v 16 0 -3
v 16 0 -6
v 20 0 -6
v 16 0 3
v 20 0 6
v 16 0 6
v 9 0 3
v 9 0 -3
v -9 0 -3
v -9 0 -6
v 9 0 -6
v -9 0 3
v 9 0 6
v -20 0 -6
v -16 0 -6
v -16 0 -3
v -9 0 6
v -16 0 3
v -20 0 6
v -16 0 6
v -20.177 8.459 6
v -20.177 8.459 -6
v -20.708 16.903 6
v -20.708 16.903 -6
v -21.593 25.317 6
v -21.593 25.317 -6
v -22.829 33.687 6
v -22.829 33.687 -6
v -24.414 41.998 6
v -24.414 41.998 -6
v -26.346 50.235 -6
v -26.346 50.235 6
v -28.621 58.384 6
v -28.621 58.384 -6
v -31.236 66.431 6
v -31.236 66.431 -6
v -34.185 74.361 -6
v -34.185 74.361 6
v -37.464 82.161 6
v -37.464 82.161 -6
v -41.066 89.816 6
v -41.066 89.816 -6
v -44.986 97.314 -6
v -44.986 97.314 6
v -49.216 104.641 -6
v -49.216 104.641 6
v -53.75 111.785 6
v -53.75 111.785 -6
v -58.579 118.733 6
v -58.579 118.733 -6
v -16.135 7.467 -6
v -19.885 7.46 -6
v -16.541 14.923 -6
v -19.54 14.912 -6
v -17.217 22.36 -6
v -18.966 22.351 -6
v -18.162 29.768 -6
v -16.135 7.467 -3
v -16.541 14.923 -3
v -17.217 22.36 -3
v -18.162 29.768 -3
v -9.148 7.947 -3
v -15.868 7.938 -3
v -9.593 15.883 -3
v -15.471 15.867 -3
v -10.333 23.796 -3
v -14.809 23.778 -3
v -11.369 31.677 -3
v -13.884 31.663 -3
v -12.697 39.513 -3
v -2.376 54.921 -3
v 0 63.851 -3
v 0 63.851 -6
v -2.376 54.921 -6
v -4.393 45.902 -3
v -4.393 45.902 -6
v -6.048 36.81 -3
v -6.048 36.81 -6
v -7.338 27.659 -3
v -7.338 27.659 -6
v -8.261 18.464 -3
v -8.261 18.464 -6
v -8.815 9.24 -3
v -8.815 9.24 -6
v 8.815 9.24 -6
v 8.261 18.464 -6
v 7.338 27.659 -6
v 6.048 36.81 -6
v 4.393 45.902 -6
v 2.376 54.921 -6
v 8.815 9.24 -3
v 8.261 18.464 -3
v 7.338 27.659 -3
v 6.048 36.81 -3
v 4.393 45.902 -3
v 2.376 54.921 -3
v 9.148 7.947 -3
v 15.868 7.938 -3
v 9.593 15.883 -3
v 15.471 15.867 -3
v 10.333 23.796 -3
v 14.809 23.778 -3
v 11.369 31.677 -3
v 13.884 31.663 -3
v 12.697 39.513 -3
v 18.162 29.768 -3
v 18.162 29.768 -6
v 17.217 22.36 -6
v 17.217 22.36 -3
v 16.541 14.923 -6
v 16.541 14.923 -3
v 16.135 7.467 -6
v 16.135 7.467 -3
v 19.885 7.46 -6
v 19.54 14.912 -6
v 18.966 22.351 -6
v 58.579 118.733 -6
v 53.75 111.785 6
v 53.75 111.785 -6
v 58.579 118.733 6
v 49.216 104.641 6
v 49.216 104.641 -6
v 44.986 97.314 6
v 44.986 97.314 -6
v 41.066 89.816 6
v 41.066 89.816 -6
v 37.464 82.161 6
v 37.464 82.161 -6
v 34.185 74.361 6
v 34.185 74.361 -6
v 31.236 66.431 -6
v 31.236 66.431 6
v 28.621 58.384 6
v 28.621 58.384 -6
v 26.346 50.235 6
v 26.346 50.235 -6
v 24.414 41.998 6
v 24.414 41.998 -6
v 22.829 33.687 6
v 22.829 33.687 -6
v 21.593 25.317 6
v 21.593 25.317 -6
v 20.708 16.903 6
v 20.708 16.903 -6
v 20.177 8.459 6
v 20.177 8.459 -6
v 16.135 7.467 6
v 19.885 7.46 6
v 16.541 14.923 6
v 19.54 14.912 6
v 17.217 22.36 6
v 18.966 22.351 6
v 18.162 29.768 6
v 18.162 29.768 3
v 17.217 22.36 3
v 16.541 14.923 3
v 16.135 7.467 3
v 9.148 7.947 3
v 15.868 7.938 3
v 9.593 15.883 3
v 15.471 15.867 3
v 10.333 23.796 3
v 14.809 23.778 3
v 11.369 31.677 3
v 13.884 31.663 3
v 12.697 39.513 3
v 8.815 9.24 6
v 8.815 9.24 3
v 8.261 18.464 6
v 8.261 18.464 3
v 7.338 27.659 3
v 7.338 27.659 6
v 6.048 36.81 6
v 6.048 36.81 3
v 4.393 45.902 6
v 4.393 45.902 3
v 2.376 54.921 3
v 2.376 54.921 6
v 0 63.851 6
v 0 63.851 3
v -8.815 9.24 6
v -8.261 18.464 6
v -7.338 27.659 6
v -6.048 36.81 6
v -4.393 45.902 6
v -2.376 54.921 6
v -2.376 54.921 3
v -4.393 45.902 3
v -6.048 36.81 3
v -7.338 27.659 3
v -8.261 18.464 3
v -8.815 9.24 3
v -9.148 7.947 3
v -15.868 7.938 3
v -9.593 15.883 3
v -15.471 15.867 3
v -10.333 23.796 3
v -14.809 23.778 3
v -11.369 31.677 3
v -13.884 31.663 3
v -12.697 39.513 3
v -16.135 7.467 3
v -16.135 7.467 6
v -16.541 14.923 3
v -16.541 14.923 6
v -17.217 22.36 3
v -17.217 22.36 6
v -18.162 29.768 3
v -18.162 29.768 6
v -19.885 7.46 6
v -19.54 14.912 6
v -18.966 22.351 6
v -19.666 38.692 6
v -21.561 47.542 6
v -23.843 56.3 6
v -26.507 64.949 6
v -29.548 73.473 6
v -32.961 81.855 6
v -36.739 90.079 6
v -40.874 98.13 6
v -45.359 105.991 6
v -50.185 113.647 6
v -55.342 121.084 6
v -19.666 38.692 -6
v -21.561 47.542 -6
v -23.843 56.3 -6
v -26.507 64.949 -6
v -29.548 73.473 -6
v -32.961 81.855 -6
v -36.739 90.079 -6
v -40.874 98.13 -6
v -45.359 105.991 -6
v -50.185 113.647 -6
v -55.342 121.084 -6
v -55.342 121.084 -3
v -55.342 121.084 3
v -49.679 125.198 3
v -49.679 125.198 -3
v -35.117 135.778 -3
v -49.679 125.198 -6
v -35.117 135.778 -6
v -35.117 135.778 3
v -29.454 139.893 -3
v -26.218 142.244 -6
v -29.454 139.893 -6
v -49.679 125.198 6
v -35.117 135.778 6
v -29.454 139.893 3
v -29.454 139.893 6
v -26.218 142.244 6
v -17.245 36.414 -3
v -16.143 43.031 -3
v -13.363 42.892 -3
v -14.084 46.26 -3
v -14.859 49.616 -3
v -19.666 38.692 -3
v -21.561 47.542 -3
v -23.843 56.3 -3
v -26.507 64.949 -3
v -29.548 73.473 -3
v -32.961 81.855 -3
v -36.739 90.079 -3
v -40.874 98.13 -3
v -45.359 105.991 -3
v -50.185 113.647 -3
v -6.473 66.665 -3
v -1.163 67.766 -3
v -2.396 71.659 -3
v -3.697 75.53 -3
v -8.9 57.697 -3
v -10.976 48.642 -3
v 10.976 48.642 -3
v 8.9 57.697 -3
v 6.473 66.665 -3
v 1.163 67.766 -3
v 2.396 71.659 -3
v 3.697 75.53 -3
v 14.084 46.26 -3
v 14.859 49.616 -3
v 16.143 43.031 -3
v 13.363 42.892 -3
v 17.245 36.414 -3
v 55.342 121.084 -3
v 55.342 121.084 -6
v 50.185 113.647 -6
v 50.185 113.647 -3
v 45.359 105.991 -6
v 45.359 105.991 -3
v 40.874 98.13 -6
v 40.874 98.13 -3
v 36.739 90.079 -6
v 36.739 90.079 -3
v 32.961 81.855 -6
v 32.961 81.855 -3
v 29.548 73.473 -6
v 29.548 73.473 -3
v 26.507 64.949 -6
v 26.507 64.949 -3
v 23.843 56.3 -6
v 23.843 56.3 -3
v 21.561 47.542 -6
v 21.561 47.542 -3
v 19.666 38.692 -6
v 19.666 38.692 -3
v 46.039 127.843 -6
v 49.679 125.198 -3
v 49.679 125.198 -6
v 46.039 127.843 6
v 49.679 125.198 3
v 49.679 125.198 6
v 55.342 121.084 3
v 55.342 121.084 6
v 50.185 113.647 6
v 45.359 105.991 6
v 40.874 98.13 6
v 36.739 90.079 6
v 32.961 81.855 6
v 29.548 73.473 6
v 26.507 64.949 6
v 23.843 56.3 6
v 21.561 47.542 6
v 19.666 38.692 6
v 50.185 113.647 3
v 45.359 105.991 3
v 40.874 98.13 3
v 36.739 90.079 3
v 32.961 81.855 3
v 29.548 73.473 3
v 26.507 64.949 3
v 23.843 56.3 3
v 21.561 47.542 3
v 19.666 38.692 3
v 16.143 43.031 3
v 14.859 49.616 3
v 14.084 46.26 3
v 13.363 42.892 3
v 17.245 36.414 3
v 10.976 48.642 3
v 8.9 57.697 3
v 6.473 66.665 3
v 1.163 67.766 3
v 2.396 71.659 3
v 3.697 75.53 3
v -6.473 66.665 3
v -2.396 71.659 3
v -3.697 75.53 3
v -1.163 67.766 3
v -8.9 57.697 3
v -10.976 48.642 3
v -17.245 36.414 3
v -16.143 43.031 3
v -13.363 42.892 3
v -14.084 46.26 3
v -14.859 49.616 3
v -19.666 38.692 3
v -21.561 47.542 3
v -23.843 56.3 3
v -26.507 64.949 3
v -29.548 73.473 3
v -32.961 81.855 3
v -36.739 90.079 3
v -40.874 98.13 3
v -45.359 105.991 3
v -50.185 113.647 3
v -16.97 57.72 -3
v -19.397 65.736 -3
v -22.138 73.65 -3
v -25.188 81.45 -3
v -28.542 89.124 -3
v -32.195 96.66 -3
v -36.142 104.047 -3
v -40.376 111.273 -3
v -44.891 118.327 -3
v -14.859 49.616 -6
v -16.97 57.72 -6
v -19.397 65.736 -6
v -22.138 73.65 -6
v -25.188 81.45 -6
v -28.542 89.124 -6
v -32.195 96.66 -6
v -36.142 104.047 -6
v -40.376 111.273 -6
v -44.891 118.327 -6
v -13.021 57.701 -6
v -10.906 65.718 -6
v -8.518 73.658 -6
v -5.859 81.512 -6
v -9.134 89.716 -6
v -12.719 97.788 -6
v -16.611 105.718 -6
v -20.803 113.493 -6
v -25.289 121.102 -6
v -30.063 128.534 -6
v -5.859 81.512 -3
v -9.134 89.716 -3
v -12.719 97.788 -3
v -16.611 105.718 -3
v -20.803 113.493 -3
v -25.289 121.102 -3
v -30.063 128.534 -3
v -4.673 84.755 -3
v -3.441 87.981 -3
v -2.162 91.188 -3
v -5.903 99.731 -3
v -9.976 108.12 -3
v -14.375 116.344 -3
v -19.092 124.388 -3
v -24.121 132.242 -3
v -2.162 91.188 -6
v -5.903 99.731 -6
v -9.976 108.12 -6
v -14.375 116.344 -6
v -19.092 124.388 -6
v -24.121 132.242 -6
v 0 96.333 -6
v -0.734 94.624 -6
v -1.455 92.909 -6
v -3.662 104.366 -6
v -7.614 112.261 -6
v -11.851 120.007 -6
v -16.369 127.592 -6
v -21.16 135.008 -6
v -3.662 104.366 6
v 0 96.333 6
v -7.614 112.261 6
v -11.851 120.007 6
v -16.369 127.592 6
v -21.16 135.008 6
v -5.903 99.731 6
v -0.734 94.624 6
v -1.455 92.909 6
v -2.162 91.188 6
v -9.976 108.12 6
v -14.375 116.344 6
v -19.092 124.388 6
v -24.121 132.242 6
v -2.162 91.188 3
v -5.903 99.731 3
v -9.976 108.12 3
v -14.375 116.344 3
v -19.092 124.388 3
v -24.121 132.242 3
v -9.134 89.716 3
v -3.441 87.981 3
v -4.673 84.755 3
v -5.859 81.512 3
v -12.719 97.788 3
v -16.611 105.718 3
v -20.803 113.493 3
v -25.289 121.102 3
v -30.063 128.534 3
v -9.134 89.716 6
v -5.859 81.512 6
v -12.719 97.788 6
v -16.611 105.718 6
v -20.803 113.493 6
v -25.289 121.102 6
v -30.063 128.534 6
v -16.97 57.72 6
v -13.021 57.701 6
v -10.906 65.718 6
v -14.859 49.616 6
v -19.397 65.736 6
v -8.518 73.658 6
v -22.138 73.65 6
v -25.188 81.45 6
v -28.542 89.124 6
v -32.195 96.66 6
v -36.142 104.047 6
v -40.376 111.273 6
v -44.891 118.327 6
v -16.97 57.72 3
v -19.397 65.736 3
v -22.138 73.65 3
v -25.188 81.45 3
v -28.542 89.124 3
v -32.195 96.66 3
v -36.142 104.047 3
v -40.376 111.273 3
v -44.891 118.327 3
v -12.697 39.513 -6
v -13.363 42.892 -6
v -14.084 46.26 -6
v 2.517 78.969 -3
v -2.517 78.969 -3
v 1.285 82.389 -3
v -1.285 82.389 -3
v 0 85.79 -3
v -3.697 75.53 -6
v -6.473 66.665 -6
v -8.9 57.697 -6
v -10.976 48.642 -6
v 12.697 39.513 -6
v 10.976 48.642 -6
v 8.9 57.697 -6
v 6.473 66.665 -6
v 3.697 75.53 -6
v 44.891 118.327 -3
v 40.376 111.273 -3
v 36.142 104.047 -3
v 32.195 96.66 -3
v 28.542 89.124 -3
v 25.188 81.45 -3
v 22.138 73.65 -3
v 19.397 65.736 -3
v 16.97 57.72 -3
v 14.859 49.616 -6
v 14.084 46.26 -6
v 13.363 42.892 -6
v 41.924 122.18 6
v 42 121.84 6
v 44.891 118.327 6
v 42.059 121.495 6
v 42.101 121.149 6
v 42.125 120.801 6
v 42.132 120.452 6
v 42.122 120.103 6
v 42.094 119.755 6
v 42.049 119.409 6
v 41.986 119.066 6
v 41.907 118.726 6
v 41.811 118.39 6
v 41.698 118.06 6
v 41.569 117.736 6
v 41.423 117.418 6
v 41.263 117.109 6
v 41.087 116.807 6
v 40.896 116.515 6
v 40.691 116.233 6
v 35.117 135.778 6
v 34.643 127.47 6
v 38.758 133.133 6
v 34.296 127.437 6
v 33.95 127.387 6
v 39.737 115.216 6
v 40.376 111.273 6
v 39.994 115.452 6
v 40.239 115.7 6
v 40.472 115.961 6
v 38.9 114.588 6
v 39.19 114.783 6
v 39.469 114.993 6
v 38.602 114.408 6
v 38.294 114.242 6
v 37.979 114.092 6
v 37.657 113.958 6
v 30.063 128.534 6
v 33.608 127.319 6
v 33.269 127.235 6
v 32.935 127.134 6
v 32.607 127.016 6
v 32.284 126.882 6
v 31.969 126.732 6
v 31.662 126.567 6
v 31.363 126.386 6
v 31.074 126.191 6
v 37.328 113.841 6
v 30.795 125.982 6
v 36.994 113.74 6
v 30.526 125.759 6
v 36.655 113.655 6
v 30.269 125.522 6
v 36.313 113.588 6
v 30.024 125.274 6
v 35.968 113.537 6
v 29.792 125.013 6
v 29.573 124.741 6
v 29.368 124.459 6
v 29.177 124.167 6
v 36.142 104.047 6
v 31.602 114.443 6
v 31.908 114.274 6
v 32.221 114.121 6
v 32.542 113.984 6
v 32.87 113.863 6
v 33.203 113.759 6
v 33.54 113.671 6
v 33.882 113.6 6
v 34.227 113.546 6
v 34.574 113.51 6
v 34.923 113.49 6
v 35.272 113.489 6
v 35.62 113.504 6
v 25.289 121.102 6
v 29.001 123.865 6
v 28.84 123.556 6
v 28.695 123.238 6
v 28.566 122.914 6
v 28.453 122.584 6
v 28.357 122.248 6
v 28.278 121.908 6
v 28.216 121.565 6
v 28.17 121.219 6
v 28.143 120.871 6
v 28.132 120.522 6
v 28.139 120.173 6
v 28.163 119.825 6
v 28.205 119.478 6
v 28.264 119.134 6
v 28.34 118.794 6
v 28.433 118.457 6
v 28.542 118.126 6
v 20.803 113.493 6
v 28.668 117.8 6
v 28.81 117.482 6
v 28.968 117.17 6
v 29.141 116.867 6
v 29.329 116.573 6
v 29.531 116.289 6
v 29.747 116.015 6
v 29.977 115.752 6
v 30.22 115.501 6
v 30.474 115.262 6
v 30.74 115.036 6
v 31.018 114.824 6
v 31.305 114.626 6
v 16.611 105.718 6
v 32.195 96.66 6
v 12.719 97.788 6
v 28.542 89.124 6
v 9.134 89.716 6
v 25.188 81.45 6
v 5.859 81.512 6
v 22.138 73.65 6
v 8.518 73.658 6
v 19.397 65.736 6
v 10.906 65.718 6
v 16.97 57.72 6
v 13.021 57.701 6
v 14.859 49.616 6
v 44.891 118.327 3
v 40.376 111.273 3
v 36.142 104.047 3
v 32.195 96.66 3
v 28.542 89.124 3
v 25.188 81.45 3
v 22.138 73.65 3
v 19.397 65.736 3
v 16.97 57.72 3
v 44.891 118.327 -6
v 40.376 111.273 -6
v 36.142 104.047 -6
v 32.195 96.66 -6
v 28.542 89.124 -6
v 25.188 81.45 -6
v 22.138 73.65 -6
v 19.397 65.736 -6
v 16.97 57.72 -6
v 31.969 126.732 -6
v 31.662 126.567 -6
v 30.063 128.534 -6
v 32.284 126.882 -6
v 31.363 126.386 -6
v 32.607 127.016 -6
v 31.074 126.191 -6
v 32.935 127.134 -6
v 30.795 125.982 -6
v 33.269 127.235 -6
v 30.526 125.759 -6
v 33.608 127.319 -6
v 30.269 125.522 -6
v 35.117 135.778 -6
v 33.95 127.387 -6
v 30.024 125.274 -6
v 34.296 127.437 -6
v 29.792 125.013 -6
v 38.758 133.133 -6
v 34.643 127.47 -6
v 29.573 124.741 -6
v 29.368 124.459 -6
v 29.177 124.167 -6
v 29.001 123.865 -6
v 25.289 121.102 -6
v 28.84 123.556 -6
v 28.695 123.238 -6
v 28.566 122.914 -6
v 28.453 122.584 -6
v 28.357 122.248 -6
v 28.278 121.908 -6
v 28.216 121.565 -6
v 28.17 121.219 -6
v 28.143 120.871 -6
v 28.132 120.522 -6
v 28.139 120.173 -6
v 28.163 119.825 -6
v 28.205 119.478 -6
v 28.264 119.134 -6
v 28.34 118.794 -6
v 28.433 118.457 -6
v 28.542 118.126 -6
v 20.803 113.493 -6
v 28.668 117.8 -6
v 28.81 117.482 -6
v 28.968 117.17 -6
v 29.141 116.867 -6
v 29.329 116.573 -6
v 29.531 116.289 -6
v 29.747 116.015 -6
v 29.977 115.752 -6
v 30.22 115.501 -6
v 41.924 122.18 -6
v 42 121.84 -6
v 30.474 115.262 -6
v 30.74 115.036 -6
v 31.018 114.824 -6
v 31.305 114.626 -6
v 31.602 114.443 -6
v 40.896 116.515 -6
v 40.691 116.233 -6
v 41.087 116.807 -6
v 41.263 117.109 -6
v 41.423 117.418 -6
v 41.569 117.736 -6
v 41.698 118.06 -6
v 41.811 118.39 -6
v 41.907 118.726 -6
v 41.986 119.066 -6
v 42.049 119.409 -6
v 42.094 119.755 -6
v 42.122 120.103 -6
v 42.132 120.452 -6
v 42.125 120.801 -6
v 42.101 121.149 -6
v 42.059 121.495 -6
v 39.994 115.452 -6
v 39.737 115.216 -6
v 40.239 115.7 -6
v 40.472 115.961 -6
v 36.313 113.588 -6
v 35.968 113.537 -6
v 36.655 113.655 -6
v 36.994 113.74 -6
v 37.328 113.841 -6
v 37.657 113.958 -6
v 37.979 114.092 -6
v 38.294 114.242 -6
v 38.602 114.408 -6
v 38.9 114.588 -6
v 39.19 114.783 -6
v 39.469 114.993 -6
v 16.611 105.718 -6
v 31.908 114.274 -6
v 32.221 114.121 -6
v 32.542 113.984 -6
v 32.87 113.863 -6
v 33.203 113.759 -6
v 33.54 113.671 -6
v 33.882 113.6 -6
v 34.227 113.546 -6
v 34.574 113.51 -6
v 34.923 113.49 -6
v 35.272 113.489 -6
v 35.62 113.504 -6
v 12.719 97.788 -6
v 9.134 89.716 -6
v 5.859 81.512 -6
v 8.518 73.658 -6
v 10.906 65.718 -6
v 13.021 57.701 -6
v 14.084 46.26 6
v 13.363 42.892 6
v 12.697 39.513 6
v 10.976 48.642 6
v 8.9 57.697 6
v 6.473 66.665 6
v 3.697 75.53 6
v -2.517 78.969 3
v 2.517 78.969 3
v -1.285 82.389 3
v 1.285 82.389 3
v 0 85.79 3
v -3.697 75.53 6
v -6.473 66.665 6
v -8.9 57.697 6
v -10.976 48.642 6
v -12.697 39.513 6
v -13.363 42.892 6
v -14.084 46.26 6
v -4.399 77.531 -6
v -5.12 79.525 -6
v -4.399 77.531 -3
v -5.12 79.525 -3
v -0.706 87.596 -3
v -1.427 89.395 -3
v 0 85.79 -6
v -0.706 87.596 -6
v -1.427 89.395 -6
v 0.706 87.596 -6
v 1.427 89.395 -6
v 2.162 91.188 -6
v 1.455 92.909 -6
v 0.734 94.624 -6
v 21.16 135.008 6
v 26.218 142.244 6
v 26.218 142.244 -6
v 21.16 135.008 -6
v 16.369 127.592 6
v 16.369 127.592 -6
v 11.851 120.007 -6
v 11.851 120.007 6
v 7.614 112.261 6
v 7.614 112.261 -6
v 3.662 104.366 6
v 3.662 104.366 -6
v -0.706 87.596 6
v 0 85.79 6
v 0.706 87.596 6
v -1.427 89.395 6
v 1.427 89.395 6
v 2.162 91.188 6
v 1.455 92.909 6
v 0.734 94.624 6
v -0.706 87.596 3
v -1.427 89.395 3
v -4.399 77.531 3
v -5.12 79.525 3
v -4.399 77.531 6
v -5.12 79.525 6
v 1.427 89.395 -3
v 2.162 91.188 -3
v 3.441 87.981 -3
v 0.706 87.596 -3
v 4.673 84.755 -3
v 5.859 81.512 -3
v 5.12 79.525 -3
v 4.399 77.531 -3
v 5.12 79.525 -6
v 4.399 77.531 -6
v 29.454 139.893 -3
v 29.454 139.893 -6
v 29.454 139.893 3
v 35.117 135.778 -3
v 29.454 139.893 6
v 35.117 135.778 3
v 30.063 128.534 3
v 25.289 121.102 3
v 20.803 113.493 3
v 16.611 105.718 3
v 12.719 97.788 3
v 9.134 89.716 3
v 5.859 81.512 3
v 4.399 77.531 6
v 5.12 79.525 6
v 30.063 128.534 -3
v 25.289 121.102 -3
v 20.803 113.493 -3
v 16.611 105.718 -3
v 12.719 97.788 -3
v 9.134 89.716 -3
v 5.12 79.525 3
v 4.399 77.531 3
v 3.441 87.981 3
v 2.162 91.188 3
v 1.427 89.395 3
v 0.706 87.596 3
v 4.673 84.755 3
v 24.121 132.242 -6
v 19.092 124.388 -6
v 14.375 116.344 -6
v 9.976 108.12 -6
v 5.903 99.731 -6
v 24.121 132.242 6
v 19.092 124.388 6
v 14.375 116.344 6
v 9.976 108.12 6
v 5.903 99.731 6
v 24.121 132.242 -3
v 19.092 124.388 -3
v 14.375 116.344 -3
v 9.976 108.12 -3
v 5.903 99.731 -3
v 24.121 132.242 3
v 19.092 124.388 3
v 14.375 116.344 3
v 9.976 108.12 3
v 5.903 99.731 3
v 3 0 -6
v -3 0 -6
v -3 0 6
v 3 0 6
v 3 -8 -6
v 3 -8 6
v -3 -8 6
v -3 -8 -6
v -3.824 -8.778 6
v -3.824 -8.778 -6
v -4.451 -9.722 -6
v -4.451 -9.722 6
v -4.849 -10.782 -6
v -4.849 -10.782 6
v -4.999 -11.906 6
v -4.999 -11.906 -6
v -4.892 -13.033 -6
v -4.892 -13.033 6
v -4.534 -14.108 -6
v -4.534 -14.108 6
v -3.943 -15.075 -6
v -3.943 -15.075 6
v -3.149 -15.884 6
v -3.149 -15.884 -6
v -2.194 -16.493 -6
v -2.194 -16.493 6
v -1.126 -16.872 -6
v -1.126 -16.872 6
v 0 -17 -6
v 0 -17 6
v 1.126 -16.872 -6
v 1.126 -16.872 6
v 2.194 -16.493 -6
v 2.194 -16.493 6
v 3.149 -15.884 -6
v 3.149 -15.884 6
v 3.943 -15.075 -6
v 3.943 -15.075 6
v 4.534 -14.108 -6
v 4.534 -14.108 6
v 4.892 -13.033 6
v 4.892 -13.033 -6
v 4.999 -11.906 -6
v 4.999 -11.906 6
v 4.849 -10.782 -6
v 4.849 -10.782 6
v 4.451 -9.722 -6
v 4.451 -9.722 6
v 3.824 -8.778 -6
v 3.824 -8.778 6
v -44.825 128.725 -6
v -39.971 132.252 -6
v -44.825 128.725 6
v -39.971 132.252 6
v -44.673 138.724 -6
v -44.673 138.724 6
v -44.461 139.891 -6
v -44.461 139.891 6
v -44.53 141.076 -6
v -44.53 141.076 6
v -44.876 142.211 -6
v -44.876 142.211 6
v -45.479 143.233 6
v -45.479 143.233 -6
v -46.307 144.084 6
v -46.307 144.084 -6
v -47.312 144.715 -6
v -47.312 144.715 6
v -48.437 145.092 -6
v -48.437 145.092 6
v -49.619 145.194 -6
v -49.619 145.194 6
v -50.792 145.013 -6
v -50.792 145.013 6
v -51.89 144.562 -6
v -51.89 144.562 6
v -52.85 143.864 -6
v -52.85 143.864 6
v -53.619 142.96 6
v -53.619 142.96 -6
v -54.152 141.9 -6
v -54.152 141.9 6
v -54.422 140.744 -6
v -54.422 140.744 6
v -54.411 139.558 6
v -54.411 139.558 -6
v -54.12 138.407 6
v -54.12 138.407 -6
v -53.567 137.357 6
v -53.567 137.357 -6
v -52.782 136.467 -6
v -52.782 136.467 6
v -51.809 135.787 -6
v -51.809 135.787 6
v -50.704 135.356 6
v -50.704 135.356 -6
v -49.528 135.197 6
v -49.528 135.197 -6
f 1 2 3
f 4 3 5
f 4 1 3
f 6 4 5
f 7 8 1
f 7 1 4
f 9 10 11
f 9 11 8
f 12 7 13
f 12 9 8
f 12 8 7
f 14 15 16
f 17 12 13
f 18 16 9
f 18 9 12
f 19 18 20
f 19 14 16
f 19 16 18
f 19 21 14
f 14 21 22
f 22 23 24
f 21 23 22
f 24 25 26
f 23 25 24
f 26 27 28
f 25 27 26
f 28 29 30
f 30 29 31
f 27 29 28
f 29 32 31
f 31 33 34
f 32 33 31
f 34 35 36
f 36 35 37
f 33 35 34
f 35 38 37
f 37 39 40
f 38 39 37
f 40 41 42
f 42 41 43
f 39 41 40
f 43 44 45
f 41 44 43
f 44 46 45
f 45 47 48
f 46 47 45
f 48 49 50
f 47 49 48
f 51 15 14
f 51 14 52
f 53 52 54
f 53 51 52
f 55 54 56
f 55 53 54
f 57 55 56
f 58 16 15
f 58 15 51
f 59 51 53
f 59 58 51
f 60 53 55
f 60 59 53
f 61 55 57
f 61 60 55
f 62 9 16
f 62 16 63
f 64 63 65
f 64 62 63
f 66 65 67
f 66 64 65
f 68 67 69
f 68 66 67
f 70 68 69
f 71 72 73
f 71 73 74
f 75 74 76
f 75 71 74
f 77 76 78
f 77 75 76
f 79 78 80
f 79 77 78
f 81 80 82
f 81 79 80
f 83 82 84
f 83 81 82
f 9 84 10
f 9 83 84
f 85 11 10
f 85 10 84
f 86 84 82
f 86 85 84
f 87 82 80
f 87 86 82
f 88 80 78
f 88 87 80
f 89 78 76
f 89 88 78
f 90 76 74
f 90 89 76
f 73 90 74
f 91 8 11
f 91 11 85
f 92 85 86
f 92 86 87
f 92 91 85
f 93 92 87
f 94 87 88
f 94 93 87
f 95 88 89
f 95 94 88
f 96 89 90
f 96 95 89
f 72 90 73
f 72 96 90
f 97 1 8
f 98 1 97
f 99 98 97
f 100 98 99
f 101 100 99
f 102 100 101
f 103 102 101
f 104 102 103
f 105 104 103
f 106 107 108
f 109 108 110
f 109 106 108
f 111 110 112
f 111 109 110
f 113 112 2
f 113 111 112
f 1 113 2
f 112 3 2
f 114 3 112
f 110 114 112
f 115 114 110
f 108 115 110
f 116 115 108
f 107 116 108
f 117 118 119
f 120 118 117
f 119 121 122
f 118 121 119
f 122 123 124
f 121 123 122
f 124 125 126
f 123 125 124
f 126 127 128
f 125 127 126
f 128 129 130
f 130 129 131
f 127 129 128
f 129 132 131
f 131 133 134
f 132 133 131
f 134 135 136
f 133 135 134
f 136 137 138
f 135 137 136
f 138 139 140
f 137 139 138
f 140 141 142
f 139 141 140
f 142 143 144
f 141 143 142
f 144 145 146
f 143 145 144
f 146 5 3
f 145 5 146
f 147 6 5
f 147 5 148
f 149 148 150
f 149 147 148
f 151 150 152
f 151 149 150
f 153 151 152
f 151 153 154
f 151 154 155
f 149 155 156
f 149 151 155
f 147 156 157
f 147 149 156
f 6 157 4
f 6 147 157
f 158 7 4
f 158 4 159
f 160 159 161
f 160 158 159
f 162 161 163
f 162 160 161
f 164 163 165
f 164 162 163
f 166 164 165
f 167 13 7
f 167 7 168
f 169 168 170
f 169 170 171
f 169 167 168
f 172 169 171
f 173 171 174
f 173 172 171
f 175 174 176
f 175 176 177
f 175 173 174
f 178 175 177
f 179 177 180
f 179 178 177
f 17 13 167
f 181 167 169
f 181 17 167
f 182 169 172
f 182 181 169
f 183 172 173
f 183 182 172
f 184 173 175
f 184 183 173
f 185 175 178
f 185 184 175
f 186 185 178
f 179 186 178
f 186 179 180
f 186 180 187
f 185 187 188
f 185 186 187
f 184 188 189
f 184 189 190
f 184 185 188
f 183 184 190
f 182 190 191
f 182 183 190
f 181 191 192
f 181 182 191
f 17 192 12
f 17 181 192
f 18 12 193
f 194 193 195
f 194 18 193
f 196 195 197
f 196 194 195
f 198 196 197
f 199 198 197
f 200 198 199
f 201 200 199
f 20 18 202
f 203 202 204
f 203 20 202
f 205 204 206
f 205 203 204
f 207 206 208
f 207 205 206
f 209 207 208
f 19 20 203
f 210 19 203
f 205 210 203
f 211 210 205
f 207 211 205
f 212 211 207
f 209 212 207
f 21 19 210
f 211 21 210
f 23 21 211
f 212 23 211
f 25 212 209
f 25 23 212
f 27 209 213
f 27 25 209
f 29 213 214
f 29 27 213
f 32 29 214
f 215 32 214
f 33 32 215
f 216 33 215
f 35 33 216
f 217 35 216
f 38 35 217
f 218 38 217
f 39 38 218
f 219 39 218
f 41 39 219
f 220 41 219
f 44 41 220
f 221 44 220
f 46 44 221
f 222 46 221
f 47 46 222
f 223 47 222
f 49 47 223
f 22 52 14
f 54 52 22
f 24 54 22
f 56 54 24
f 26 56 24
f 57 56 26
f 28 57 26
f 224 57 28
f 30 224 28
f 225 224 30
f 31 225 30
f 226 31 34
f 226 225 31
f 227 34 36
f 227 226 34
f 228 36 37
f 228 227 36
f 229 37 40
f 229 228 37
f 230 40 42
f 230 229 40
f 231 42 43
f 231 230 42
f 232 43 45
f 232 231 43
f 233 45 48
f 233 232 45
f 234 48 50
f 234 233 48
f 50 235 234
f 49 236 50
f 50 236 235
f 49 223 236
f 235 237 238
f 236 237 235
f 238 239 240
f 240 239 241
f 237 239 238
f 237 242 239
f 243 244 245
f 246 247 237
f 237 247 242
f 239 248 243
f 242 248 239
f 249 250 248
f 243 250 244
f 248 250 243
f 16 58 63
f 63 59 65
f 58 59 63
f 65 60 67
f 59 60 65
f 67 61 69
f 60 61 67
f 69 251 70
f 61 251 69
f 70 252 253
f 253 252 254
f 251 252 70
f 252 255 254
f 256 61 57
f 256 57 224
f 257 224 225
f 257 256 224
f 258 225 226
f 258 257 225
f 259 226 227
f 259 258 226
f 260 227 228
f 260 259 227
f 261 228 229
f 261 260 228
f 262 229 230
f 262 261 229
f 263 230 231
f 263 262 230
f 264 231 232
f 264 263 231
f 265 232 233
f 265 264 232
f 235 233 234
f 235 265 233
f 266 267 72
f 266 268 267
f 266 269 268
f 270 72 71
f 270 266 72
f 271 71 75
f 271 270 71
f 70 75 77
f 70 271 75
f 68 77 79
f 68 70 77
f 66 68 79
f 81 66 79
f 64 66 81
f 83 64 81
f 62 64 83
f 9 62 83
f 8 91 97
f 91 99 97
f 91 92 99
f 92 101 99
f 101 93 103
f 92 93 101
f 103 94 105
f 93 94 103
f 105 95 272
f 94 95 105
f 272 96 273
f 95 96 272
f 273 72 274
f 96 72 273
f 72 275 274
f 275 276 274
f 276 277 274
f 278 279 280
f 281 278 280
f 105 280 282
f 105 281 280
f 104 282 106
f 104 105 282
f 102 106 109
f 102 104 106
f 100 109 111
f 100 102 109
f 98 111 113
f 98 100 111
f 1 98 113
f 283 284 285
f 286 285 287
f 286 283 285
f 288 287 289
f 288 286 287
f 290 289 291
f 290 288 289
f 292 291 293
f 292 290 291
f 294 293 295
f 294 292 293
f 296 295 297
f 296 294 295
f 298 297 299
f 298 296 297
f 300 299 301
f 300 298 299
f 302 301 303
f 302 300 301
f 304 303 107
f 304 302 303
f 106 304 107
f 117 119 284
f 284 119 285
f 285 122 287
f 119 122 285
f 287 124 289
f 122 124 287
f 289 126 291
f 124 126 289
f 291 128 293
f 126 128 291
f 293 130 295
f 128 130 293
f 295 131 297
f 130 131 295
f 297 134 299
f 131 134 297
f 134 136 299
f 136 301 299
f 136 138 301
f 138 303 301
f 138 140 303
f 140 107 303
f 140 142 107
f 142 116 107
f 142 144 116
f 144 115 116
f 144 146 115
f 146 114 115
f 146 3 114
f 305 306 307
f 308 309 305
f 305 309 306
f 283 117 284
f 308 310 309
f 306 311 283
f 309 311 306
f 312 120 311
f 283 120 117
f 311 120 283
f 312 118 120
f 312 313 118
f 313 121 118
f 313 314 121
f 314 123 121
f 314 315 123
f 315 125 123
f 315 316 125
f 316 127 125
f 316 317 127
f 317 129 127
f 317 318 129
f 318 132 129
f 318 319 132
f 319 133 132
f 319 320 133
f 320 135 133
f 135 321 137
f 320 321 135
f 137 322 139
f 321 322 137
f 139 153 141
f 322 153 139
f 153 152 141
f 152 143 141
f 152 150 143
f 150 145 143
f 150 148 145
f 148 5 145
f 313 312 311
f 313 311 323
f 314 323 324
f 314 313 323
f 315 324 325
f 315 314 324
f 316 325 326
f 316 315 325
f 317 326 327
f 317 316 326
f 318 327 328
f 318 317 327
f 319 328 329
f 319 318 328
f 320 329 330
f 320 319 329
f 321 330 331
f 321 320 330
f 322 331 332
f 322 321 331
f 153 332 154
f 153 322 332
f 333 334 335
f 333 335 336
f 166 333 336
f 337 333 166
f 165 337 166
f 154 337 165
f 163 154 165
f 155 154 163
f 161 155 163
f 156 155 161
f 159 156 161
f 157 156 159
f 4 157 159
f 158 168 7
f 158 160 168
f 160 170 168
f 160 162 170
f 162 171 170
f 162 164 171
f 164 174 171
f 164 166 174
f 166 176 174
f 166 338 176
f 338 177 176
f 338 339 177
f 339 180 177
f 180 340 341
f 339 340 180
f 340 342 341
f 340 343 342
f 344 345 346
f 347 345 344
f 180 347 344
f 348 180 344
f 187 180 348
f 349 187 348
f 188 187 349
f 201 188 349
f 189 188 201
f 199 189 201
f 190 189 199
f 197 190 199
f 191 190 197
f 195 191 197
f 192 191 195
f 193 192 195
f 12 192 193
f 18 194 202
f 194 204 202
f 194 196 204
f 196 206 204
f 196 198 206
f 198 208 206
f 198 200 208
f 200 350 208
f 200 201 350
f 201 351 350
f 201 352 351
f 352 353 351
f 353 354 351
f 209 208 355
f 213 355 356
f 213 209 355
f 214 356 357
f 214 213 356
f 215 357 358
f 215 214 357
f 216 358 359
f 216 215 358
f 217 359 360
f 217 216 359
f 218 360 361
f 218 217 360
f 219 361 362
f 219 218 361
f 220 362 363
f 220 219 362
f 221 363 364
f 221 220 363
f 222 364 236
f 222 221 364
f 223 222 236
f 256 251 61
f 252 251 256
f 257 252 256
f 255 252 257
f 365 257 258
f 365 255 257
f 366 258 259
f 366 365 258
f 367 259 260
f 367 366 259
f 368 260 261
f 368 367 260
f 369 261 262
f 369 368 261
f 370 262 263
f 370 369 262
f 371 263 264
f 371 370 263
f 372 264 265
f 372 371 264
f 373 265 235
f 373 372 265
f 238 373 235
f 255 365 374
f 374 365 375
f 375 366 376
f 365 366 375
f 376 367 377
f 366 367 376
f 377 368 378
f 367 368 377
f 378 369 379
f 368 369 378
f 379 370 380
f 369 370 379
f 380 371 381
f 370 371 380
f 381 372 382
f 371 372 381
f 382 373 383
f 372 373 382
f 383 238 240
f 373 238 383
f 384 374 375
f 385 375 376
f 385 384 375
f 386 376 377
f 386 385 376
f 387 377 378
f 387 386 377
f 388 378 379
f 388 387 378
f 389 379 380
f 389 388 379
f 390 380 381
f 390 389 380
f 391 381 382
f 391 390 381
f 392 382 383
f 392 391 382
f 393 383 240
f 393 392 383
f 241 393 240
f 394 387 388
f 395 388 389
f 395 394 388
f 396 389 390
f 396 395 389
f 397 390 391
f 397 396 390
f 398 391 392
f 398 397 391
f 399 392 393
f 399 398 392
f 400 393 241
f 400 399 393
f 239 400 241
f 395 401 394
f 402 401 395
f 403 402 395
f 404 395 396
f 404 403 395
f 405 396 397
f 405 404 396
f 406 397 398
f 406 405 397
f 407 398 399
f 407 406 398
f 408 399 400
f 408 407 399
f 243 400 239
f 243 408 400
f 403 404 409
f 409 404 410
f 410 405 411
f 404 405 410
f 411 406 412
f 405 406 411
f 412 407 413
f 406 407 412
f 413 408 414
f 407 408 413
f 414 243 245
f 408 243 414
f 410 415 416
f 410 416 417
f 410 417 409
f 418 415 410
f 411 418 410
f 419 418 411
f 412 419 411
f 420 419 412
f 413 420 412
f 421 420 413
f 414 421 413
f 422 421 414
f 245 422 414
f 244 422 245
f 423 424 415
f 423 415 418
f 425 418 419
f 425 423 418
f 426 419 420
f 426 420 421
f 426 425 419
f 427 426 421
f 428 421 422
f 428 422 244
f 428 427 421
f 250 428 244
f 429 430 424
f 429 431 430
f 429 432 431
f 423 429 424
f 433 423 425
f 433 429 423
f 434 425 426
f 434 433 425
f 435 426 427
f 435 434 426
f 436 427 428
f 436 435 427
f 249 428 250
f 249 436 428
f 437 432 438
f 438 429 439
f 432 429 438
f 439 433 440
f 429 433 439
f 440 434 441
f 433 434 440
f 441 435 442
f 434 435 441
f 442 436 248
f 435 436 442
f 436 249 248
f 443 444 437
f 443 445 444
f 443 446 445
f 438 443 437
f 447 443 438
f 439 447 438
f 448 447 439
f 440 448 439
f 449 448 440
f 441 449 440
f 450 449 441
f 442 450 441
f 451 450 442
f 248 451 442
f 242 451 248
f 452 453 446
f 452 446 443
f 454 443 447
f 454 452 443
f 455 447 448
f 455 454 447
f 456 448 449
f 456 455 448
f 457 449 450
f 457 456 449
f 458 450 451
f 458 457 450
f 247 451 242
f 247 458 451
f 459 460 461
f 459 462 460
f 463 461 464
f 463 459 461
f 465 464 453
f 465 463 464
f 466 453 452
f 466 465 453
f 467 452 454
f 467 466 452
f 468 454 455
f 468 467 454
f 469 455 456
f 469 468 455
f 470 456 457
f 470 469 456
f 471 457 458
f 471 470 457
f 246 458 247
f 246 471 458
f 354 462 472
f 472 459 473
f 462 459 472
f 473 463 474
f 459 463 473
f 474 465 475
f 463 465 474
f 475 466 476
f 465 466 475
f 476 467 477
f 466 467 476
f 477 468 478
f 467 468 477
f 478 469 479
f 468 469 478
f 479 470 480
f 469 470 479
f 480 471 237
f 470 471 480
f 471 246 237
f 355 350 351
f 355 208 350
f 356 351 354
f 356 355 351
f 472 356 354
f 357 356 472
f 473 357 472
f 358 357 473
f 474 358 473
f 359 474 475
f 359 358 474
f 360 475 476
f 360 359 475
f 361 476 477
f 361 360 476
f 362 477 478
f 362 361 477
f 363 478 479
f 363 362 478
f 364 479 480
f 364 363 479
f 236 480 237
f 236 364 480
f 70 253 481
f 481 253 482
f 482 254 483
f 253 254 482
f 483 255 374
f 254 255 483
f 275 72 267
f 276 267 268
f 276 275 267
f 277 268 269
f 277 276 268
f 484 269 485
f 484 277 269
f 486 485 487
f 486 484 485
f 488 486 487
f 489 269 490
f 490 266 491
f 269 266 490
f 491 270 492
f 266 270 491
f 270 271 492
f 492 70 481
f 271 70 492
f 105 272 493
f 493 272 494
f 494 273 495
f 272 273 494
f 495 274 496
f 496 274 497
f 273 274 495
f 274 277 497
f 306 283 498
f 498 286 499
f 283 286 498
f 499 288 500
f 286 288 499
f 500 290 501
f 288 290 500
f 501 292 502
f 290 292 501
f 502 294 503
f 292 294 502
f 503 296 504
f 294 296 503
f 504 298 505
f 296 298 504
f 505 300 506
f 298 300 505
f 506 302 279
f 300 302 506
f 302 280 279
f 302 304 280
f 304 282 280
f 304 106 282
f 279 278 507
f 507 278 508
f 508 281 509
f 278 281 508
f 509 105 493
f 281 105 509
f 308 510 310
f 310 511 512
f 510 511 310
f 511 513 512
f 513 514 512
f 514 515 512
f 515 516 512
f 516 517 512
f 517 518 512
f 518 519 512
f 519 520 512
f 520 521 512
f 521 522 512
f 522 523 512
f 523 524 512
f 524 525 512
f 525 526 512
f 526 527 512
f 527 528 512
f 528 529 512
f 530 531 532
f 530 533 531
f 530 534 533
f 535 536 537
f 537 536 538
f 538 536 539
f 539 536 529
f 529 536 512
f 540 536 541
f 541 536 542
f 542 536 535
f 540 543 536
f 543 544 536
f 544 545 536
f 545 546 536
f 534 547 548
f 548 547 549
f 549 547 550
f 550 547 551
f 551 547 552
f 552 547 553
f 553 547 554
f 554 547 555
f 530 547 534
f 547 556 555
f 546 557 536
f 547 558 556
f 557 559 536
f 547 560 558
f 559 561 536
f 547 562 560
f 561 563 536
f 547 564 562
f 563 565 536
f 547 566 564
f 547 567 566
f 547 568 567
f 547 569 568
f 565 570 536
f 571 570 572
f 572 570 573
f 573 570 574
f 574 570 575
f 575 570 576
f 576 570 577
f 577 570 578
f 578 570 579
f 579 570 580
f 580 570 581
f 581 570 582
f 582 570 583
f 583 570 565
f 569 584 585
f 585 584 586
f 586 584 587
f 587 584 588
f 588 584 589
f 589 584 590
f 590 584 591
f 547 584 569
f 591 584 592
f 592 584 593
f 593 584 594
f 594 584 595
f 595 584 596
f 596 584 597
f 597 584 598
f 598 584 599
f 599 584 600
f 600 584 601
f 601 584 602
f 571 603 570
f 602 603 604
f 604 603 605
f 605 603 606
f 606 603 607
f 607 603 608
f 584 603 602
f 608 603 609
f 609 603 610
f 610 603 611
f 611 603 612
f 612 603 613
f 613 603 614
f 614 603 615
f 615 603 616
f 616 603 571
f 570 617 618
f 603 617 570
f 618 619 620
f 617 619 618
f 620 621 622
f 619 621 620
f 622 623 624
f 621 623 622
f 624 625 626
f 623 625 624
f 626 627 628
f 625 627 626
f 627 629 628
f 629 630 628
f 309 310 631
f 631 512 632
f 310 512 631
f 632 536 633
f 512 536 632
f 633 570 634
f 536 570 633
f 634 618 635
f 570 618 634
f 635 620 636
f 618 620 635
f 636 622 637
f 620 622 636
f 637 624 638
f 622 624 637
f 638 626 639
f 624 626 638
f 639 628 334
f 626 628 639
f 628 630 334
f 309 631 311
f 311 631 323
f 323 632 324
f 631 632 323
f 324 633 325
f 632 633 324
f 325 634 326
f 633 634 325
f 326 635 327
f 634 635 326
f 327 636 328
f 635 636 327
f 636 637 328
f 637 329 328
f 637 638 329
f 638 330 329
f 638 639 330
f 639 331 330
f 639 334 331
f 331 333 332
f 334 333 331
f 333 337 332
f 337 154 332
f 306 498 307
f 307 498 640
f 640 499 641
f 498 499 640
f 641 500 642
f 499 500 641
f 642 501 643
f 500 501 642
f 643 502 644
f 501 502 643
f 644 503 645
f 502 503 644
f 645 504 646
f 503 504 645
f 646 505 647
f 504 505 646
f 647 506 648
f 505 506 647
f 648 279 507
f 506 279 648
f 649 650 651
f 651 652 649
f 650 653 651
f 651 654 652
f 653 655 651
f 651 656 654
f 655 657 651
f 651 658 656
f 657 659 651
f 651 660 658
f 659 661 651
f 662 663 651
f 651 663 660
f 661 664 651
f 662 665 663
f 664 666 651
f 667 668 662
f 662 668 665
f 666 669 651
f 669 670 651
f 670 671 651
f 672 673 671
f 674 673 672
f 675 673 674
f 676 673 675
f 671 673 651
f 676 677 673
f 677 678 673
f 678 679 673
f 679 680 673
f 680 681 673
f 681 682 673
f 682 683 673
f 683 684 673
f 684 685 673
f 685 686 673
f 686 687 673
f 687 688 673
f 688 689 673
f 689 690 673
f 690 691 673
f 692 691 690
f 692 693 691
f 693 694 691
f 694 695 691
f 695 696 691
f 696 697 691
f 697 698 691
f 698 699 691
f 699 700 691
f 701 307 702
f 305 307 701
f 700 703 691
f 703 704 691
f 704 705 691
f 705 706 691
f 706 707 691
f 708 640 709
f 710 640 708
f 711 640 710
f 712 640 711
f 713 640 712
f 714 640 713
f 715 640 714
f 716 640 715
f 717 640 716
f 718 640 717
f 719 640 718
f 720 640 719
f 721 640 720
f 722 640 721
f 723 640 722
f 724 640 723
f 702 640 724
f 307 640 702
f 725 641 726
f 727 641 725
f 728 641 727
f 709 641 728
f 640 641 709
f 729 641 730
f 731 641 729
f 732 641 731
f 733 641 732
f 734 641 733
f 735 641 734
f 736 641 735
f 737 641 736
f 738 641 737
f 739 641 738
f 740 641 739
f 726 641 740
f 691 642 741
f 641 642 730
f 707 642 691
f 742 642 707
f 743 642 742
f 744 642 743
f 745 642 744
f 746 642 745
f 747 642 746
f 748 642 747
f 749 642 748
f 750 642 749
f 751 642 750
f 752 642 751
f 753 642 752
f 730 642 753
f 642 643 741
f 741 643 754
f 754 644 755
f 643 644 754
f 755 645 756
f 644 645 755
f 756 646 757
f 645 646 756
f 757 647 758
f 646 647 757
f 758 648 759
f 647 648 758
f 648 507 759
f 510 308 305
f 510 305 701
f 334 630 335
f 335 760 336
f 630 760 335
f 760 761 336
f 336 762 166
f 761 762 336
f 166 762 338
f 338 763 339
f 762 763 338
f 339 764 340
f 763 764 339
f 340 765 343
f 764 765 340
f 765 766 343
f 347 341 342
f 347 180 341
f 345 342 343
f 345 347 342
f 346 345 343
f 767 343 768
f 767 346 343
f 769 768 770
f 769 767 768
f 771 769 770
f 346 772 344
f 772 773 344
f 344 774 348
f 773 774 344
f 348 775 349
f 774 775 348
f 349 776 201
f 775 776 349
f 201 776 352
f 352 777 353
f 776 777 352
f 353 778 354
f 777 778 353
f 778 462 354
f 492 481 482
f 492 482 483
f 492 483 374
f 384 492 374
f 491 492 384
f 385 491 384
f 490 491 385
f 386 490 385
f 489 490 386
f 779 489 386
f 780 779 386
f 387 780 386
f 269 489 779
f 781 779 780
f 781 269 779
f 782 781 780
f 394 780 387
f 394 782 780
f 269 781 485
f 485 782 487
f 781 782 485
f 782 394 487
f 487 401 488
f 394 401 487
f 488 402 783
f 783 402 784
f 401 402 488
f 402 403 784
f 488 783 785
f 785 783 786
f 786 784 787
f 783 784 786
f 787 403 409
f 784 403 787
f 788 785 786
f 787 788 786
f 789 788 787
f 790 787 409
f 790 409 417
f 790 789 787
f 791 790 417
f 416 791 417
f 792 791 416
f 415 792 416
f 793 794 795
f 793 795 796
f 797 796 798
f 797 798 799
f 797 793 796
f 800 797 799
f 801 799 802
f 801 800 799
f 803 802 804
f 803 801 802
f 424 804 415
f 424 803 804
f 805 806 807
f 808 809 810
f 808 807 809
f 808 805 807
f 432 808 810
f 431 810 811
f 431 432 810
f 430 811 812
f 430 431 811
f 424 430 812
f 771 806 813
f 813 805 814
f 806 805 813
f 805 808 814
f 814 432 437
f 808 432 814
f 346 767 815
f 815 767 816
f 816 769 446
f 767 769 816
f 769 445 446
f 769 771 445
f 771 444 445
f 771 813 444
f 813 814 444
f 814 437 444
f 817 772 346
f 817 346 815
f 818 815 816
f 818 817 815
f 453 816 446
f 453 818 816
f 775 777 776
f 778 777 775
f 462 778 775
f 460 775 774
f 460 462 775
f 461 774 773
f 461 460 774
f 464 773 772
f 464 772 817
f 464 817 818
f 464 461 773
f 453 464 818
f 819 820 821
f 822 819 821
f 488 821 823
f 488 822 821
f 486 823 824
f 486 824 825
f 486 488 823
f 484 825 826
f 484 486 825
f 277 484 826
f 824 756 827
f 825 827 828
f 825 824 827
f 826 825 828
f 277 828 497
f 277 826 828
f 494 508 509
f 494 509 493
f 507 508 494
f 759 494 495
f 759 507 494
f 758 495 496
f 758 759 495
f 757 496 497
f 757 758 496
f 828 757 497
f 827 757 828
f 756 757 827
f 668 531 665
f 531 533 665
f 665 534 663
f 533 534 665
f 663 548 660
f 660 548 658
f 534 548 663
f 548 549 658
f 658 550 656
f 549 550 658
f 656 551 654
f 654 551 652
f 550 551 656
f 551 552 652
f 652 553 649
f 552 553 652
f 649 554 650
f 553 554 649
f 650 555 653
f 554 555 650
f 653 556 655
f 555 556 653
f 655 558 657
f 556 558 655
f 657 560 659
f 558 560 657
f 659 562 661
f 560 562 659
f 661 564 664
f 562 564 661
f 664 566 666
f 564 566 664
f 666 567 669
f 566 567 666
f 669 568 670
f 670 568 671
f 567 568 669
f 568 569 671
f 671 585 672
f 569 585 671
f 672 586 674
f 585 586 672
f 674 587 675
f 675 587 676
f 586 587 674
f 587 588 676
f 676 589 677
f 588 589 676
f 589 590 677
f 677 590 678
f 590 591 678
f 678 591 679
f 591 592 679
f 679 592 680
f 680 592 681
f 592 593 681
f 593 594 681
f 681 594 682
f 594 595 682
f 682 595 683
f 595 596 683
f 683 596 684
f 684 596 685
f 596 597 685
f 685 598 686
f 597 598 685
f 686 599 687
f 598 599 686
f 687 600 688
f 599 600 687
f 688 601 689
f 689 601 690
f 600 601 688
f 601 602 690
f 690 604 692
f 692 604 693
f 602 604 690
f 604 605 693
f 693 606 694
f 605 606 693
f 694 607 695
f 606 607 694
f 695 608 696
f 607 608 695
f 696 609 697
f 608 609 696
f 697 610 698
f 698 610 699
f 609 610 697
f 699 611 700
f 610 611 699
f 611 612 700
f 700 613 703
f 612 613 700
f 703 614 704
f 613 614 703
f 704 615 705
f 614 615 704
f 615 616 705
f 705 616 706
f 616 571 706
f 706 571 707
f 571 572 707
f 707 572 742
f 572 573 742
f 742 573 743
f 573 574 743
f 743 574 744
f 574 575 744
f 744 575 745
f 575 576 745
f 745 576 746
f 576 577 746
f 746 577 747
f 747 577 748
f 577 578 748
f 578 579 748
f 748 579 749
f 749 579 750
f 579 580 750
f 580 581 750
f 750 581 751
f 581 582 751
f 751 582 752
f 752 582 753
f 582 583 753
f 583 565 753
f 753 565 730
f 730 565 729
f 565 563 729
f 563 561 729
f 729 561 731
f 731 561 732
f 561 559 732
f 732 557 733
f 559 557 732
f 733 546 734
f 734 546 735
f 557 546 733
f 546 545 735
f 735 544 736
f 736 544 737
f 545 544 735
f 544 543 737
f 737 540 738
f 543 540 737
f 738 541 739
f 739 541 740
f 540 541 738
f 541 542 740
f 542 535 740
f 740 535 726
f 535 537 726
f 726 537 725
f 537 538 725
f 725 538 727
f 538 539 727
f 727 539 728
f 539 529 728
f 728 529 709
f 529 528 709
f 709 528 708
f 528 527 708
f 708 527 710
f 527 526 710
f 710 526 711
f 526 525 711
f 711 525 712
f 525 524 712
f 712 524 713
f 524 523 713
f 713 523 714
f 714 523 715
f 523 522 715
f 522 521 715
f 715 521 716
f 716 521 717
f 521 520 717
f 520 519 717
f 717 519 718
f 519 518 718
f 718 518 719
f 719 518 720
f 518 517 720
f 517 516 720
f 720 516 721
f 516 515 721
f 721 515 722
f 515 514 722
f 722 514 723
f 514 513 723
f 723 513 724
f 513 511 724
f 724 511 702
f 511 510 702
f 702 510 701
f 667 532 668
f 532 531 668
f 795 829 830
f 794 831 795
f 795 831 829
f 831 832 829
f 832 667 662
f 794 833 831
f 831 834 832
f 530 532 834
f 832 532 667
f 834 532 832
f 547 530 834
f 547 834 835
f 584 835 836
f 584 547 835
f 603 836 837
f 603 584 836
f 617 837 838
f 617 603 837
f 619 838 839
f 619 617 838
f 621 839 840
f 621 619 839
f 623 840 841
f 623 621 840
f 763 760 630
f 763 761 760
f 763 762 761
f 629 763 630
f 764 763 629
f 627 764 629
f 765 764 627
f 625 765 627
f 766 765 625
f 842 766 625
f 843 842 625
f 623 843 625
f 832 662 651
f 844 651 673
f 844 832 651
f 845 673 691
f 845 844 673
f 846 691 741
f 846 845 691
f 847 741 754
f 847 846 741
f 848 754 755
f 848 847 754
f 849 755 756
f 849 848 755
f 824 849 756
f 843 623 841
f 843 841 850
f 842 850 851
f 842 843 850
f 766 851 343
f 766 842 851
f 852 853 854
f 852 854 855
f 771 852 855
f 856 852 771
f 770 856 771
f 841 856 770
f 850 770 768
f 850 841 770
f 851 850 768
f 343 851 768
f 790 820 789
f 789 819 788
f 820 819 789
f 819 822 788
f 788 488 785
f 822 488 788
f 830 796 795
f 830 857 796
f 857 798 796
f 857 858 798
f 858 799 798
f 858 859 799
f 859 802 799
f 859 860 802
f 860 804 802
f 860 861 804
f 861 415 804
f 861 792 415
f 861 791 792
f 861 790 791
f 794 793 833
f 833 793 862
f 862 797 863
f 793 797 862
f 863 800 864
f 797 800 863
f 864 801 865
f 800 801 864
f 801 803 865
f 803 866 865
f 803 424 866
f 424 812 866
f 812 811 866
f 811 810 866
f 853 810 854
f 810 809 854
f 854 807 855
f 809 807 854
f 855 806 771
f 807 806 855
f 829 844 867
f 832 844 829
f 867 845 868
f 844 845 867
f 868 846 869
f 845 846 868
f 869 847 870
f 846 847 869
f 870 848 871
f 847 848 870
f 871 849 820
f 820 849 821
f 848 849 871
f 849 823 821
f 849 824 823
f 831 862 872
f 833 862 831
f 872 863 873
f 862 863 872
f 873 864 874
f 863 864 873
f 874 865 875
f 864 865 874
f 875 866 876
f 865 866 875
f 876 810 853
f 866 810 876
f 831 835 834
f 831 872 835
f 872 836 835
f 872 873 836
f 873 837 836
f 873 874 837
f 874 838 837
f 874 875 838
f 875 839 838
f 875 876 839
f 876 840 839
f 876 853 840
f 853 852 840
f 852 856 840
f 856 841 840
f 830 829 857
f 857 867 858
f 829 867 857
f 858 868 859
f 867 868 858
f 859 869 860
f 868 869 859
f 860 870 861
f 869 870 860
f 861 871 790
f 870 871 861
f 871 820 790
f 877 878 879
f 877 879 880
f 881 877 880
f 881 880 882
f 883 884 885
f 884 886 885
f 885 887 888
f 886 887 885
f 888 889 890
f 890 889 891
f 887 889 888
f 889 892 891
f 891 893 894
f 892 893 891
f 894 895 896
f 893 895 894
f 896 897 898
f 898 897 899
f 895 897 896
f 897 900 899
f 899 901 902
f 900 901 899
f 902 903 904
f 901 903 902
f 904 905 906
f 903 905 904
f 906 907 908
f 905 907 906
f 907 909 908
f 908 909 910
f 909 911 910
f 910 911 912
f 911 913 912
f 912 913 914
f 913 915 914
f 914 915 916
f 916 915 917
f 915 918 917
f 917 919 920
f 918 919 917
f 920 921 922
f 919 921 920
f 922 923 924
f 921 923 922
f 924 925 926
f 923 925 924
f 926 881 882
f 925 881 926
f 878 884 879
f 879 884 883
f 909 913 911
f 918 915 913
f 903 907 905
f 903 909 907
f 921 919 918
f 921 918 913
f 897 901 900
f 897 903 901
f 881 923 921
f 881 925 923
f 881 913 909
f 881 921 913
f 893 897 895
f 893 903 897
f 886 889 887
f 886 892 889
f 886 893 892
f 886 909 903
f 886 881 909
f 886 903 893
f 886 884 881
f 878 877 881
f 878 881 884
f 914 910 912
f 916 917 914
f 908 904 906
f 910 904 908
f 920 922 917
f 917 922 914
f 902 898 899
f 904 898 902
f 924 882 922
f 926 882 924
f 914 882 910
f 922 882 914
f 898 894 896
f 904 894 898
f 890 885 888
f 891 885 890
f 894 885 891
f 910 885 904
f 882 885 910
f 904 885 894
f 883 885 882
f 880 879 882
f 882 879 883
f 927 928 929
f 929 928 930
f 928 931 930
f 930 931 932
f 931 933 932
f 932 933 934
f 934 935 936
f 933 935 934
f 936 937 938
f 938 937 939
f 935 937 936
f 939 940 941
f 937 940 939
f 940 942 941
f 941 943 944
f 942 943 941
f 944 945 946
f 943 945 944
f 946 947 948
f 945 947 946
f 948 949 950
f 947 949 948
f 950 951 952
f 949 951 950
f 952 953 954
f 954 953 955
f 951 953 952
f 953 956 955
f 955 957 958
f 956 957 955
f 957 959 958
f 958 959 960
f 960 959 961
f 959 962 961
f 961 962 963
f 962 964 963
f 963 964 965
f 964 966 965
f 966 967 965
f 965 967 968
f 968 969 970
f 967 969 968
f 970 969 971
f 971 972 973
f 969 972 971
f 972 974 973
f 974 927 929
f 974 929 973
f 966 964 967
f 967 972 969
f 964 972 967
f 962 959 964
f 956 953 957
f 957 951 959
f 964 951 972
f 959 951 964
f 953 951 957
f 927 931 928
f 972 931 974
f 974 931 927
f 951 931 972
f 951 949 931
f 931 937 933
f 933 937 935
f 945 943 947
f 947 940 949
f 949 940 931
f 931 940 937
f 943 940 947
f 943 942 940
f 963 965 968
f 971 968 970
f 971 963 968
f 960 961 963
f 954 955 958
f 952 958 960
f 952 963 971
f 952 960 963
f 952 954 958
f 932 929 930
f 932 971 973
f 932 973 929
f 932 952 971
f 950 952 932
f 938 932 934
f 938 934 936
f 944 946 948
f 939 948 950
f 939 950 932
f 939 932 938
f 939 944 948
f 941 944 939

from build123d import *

# Parameters (mm, degrees)
SKETCH003_W       = 7
SKETCH003_H       = 3
SKETCH004_W       = 7
SKETCH004_H       = 3
SKETCH005_W       = 7
SKETCH005_H       = 3
SKETCH006_W       = 7
SKETCH006_H       = 3
POCKET_DEPTH      = 6.001
POCKET_DEPTH_BACK = -6.001
PAD_DEPTH         = 6
PAD002_DEPTH      = 6


with BuildPart() as main:
    # AdditivePipe: sweep along a path in Sketch
    with BuildLine(Plane.XY) as additivepipe_path:
        ThreePointArc((0, 0), (-10.865453, 68.601773), (-42.398227, 130.488326))
    # Sketch002 → AdditivePipe (sweep)
    with BuildSketch(Plane.XZ):
        Polygon((-20, 6), (-20, -6), (-16, -6), (-16, -3), (-9, -3), (-9, -6), (9, -6), (9, -3), (16, -3), (16, -6), (20, -6), (20, 6), (16, 6), (16, 3), (9, 3), (9, 6), (-9, 6), (-9, 3), (-16, 3), (-16, 6), align=None)
    sweep(path=additivepipe_path.line)

    # AdditivePipe001: sweep along a path in Sketch001
    with BuildLine(Plane.XY) as additivepipe001_path:
        ThreePointArc((42.398227, 130.488326), (10.865453, 68.601773), (0, 0))
    # Sketch002 → AdditivePipe001 (sweep)
    with BuildSketch(Plane.XZ):
        Polygon((-20, 6), (-20, -6), (-16, -6), (-16, -3), (-9, -3), (-9, -6), (9, -6), (9, -3), (16, -3), (16, -6), (20, -6), (20, 6), (16, 6), (16, 3), (9, 3), (9, 6), (-9, 6), (-9, 3), (-16, 3), (-16, 6), align=None)
    sweep(path=additivepipe001_path.line)

    # SubtractivePipe: sweep along a path in Sketch
    with BuildLine(Plane.XY) as subtractivepipe_path:
        ThreePointArc((0, 0), (-10.865453, 68.601773), (-42.398227, 130.488326))
    # Sketch003 → SubtractivePipe (sweep, cut)
    with BuildSketch(Plane.XZ):
        with Locations((-12.5, 4.5)):
            Rectangle(SKETCH003_W, SKETCH003_H)
    sweep(path=subtractivepipe_path.line, mode=Mode.SUBTRACT)

    # SubtractivePipe001: sweep along a path in Sketch001
    with BuildLine(Plane.XY) as subtractivepipe001_path:
        ThreePointArc((42.398227, 130.488326), (10.865453, 68.601773), (0, 0))
    # Sketch003 → SubtractivePipe001 (sweep, cut)
    with BuildSketch(Plane.XZ):
        with Locations((-12.5, 4.5)):
            Rectangle(SKETCH003_W, SKETCH003_H)
    sweep(path=subtractivepipe001_path.line, mode=Mode.SUBTRACT)

    # SubtractivePipe002: sweep along a path in Sketch
    with BuildLine(Plane.XY) as subtractivepipe002_path:
        ThreePointArc((0, 0), (-10.865453, 68.601773), (-42.398227, 130.488326))
    # Sketch004 → SubtractivePipe002 (sweep, cut)
    with BuildSketch(Plane.XZ):
        with Locations((12.5, 4.5)):
            Rectangle(SKETCH004_W, SKETCH004_H)
    sweep(path=subtractivepipe002_path.line, mode=Mode.SUBTRACT)

    # SubtractivePipe003: sweep along a path in Sketch001
    with BuildLine(Plane.XY) as subtractivepipe003_path:
        ThreePointArc((42.398227, 130.488326), (10.865453, 68.601773), (0, 0))
    # Sketch004 → SubtractivePipe003 (sweep, cut)
    with BuildSketch(Plane.XZ):
        with Locations((12.5, 4.5)):
            Rectangle(SKETCH004_W, SKETCH004_H)
    sweep(path=subtractivepipe003_path.line, mode=Mode.SUBTRACT)

    # SubtractivePipe004: sweep along a path in Sketch
    with BuildLine(Plane.XY) as subtractivepipe004_path:
        ThreePointArc((0, 0), (-10.865453, 68.601773), (-42.398227, 130.488326))
    # Sketch005 → SubtractivePipe004 (sweep, cut)
    with BuildSketch(Plane.XZ):
        with Locations((-12.5, -4.5)):
            Rectangle(SKETCH005_W, SKETCH005_H)
    sweep(path=subtractivepipe004_path.line, mode=Mode.SUBTRACT)

    # SubtractivePipe005: sweep along a path in Sketch001
    with BuildLine(Plane.XY) as subtractivepipe005_path:
        ThreePointArc((42.398227, 130.488326), (10.865453, 68.601773), (0, 0))
    # Sketch005 → SubtractivePipe005 (sweep, cut)
    with BuildSketch(Plane.XZ):
        with Locations((-12.5, -4.5)):
            Rectangle(SKETCH005_W, SKETCH005_H)
    sweep(path=subtractivepipe005_path.line, mode=Mode.SUBTRACT)

    # SubtractivePipe006: sweep along a path in Sketch
    with BuildLine(Plane.XY) as subtractivepipe006_path:
        ThreePointArc((0, 0), (-10.865453, 68.601773), (-42.398227, 130.488326))
    # Sketch006 → SubtractivePipe006 (sweep, cut)
    with BuildSketch(Plane.XZ):
        with Locations((12.5, -4.5)):
            Rectangle(SKETCH006_W, SKETCH006_H)
    sweep(path=subtractivepipe006_path.line, mode=Mode.SUBTRACT)

    # SubtractivePipe007: sweep along a path in Sketch001
    with BuildLine(Plane.XY) as subtractivepipe007_path:
        ThreePointArc((42.398227, 130.488326), (10.865453, 68.601773), (0, 0))
    # Sketch006 → SubtractivePipe007 (sweep, cut)
    with BuildSketch(Plane.XZ):
        with Locations((12.5, -4.5)):
            Rectangle(SKETCH006_W, SKETCH006_H)
    sweep(path=subtractivepipe007_path.line, mode=Mode.SUBTRACT)

    # Sketch009 → Pocket (cut, two sides)
    with BuildSketch(Plane.XY) as pocket_sk:
        with BuildLine():
            Line((38.757651, 133.13336), (46.038804, 127.843292))
            Line((46.038804, 127.843292), (41.924307, 122.180173))
            ThreePointArc((34.643154, 127.470241), (31.017586, 114.824218), (41.924307, 122.180173))
            Line((38.757651, 133.13336), (34.643154, 127.470241))
        make_face()
    extrude(amount=-POCKET_DEPTH, mode=Mode.SUBTRACT)
    extrude(pocket_sk.sketch, amount=-POCKET_DEPTH_BACK, mode=Mode.SUBTRACT)


with BuildPart() as male1:
    # Sketch010 → Pad (new body, symmetric)
    with BuildSketch(Plane.XY):
        with BuildLine():
            Line((-3, 0), (3, 0))
            Line((3, 0), (3, -8))
            ThreePointArc((-3, -8), (0, -17), (3, -8))
            Line((-3, 0), (-3, -8))
        make_face()
    extrude(amount=PAD_DEPTH, both=True)


with BuildPart() as male2:
    # Sketch012 → Pad002 (new body, symmetric)
    with BuildSketch(Plane.XY):
        with BuildLine():
            Line((-44.825278, 128.72497), (-39.971176, 132.251682))
            Line((-39.971176, 132.251682), (-44.673458, 138.723818))
            ThreePointArc((-44.673458, 138.723818), (-52.390577, 144.241615), (-49.52756, 135.197106))
            Line((-44.825278, 128.72497), (-49.52756, 135.197106))
        make_face()
    extrude(amount=PAD002_DEPTH, both=True)


solid = Compound([main.part, male1.part, male2.part])
